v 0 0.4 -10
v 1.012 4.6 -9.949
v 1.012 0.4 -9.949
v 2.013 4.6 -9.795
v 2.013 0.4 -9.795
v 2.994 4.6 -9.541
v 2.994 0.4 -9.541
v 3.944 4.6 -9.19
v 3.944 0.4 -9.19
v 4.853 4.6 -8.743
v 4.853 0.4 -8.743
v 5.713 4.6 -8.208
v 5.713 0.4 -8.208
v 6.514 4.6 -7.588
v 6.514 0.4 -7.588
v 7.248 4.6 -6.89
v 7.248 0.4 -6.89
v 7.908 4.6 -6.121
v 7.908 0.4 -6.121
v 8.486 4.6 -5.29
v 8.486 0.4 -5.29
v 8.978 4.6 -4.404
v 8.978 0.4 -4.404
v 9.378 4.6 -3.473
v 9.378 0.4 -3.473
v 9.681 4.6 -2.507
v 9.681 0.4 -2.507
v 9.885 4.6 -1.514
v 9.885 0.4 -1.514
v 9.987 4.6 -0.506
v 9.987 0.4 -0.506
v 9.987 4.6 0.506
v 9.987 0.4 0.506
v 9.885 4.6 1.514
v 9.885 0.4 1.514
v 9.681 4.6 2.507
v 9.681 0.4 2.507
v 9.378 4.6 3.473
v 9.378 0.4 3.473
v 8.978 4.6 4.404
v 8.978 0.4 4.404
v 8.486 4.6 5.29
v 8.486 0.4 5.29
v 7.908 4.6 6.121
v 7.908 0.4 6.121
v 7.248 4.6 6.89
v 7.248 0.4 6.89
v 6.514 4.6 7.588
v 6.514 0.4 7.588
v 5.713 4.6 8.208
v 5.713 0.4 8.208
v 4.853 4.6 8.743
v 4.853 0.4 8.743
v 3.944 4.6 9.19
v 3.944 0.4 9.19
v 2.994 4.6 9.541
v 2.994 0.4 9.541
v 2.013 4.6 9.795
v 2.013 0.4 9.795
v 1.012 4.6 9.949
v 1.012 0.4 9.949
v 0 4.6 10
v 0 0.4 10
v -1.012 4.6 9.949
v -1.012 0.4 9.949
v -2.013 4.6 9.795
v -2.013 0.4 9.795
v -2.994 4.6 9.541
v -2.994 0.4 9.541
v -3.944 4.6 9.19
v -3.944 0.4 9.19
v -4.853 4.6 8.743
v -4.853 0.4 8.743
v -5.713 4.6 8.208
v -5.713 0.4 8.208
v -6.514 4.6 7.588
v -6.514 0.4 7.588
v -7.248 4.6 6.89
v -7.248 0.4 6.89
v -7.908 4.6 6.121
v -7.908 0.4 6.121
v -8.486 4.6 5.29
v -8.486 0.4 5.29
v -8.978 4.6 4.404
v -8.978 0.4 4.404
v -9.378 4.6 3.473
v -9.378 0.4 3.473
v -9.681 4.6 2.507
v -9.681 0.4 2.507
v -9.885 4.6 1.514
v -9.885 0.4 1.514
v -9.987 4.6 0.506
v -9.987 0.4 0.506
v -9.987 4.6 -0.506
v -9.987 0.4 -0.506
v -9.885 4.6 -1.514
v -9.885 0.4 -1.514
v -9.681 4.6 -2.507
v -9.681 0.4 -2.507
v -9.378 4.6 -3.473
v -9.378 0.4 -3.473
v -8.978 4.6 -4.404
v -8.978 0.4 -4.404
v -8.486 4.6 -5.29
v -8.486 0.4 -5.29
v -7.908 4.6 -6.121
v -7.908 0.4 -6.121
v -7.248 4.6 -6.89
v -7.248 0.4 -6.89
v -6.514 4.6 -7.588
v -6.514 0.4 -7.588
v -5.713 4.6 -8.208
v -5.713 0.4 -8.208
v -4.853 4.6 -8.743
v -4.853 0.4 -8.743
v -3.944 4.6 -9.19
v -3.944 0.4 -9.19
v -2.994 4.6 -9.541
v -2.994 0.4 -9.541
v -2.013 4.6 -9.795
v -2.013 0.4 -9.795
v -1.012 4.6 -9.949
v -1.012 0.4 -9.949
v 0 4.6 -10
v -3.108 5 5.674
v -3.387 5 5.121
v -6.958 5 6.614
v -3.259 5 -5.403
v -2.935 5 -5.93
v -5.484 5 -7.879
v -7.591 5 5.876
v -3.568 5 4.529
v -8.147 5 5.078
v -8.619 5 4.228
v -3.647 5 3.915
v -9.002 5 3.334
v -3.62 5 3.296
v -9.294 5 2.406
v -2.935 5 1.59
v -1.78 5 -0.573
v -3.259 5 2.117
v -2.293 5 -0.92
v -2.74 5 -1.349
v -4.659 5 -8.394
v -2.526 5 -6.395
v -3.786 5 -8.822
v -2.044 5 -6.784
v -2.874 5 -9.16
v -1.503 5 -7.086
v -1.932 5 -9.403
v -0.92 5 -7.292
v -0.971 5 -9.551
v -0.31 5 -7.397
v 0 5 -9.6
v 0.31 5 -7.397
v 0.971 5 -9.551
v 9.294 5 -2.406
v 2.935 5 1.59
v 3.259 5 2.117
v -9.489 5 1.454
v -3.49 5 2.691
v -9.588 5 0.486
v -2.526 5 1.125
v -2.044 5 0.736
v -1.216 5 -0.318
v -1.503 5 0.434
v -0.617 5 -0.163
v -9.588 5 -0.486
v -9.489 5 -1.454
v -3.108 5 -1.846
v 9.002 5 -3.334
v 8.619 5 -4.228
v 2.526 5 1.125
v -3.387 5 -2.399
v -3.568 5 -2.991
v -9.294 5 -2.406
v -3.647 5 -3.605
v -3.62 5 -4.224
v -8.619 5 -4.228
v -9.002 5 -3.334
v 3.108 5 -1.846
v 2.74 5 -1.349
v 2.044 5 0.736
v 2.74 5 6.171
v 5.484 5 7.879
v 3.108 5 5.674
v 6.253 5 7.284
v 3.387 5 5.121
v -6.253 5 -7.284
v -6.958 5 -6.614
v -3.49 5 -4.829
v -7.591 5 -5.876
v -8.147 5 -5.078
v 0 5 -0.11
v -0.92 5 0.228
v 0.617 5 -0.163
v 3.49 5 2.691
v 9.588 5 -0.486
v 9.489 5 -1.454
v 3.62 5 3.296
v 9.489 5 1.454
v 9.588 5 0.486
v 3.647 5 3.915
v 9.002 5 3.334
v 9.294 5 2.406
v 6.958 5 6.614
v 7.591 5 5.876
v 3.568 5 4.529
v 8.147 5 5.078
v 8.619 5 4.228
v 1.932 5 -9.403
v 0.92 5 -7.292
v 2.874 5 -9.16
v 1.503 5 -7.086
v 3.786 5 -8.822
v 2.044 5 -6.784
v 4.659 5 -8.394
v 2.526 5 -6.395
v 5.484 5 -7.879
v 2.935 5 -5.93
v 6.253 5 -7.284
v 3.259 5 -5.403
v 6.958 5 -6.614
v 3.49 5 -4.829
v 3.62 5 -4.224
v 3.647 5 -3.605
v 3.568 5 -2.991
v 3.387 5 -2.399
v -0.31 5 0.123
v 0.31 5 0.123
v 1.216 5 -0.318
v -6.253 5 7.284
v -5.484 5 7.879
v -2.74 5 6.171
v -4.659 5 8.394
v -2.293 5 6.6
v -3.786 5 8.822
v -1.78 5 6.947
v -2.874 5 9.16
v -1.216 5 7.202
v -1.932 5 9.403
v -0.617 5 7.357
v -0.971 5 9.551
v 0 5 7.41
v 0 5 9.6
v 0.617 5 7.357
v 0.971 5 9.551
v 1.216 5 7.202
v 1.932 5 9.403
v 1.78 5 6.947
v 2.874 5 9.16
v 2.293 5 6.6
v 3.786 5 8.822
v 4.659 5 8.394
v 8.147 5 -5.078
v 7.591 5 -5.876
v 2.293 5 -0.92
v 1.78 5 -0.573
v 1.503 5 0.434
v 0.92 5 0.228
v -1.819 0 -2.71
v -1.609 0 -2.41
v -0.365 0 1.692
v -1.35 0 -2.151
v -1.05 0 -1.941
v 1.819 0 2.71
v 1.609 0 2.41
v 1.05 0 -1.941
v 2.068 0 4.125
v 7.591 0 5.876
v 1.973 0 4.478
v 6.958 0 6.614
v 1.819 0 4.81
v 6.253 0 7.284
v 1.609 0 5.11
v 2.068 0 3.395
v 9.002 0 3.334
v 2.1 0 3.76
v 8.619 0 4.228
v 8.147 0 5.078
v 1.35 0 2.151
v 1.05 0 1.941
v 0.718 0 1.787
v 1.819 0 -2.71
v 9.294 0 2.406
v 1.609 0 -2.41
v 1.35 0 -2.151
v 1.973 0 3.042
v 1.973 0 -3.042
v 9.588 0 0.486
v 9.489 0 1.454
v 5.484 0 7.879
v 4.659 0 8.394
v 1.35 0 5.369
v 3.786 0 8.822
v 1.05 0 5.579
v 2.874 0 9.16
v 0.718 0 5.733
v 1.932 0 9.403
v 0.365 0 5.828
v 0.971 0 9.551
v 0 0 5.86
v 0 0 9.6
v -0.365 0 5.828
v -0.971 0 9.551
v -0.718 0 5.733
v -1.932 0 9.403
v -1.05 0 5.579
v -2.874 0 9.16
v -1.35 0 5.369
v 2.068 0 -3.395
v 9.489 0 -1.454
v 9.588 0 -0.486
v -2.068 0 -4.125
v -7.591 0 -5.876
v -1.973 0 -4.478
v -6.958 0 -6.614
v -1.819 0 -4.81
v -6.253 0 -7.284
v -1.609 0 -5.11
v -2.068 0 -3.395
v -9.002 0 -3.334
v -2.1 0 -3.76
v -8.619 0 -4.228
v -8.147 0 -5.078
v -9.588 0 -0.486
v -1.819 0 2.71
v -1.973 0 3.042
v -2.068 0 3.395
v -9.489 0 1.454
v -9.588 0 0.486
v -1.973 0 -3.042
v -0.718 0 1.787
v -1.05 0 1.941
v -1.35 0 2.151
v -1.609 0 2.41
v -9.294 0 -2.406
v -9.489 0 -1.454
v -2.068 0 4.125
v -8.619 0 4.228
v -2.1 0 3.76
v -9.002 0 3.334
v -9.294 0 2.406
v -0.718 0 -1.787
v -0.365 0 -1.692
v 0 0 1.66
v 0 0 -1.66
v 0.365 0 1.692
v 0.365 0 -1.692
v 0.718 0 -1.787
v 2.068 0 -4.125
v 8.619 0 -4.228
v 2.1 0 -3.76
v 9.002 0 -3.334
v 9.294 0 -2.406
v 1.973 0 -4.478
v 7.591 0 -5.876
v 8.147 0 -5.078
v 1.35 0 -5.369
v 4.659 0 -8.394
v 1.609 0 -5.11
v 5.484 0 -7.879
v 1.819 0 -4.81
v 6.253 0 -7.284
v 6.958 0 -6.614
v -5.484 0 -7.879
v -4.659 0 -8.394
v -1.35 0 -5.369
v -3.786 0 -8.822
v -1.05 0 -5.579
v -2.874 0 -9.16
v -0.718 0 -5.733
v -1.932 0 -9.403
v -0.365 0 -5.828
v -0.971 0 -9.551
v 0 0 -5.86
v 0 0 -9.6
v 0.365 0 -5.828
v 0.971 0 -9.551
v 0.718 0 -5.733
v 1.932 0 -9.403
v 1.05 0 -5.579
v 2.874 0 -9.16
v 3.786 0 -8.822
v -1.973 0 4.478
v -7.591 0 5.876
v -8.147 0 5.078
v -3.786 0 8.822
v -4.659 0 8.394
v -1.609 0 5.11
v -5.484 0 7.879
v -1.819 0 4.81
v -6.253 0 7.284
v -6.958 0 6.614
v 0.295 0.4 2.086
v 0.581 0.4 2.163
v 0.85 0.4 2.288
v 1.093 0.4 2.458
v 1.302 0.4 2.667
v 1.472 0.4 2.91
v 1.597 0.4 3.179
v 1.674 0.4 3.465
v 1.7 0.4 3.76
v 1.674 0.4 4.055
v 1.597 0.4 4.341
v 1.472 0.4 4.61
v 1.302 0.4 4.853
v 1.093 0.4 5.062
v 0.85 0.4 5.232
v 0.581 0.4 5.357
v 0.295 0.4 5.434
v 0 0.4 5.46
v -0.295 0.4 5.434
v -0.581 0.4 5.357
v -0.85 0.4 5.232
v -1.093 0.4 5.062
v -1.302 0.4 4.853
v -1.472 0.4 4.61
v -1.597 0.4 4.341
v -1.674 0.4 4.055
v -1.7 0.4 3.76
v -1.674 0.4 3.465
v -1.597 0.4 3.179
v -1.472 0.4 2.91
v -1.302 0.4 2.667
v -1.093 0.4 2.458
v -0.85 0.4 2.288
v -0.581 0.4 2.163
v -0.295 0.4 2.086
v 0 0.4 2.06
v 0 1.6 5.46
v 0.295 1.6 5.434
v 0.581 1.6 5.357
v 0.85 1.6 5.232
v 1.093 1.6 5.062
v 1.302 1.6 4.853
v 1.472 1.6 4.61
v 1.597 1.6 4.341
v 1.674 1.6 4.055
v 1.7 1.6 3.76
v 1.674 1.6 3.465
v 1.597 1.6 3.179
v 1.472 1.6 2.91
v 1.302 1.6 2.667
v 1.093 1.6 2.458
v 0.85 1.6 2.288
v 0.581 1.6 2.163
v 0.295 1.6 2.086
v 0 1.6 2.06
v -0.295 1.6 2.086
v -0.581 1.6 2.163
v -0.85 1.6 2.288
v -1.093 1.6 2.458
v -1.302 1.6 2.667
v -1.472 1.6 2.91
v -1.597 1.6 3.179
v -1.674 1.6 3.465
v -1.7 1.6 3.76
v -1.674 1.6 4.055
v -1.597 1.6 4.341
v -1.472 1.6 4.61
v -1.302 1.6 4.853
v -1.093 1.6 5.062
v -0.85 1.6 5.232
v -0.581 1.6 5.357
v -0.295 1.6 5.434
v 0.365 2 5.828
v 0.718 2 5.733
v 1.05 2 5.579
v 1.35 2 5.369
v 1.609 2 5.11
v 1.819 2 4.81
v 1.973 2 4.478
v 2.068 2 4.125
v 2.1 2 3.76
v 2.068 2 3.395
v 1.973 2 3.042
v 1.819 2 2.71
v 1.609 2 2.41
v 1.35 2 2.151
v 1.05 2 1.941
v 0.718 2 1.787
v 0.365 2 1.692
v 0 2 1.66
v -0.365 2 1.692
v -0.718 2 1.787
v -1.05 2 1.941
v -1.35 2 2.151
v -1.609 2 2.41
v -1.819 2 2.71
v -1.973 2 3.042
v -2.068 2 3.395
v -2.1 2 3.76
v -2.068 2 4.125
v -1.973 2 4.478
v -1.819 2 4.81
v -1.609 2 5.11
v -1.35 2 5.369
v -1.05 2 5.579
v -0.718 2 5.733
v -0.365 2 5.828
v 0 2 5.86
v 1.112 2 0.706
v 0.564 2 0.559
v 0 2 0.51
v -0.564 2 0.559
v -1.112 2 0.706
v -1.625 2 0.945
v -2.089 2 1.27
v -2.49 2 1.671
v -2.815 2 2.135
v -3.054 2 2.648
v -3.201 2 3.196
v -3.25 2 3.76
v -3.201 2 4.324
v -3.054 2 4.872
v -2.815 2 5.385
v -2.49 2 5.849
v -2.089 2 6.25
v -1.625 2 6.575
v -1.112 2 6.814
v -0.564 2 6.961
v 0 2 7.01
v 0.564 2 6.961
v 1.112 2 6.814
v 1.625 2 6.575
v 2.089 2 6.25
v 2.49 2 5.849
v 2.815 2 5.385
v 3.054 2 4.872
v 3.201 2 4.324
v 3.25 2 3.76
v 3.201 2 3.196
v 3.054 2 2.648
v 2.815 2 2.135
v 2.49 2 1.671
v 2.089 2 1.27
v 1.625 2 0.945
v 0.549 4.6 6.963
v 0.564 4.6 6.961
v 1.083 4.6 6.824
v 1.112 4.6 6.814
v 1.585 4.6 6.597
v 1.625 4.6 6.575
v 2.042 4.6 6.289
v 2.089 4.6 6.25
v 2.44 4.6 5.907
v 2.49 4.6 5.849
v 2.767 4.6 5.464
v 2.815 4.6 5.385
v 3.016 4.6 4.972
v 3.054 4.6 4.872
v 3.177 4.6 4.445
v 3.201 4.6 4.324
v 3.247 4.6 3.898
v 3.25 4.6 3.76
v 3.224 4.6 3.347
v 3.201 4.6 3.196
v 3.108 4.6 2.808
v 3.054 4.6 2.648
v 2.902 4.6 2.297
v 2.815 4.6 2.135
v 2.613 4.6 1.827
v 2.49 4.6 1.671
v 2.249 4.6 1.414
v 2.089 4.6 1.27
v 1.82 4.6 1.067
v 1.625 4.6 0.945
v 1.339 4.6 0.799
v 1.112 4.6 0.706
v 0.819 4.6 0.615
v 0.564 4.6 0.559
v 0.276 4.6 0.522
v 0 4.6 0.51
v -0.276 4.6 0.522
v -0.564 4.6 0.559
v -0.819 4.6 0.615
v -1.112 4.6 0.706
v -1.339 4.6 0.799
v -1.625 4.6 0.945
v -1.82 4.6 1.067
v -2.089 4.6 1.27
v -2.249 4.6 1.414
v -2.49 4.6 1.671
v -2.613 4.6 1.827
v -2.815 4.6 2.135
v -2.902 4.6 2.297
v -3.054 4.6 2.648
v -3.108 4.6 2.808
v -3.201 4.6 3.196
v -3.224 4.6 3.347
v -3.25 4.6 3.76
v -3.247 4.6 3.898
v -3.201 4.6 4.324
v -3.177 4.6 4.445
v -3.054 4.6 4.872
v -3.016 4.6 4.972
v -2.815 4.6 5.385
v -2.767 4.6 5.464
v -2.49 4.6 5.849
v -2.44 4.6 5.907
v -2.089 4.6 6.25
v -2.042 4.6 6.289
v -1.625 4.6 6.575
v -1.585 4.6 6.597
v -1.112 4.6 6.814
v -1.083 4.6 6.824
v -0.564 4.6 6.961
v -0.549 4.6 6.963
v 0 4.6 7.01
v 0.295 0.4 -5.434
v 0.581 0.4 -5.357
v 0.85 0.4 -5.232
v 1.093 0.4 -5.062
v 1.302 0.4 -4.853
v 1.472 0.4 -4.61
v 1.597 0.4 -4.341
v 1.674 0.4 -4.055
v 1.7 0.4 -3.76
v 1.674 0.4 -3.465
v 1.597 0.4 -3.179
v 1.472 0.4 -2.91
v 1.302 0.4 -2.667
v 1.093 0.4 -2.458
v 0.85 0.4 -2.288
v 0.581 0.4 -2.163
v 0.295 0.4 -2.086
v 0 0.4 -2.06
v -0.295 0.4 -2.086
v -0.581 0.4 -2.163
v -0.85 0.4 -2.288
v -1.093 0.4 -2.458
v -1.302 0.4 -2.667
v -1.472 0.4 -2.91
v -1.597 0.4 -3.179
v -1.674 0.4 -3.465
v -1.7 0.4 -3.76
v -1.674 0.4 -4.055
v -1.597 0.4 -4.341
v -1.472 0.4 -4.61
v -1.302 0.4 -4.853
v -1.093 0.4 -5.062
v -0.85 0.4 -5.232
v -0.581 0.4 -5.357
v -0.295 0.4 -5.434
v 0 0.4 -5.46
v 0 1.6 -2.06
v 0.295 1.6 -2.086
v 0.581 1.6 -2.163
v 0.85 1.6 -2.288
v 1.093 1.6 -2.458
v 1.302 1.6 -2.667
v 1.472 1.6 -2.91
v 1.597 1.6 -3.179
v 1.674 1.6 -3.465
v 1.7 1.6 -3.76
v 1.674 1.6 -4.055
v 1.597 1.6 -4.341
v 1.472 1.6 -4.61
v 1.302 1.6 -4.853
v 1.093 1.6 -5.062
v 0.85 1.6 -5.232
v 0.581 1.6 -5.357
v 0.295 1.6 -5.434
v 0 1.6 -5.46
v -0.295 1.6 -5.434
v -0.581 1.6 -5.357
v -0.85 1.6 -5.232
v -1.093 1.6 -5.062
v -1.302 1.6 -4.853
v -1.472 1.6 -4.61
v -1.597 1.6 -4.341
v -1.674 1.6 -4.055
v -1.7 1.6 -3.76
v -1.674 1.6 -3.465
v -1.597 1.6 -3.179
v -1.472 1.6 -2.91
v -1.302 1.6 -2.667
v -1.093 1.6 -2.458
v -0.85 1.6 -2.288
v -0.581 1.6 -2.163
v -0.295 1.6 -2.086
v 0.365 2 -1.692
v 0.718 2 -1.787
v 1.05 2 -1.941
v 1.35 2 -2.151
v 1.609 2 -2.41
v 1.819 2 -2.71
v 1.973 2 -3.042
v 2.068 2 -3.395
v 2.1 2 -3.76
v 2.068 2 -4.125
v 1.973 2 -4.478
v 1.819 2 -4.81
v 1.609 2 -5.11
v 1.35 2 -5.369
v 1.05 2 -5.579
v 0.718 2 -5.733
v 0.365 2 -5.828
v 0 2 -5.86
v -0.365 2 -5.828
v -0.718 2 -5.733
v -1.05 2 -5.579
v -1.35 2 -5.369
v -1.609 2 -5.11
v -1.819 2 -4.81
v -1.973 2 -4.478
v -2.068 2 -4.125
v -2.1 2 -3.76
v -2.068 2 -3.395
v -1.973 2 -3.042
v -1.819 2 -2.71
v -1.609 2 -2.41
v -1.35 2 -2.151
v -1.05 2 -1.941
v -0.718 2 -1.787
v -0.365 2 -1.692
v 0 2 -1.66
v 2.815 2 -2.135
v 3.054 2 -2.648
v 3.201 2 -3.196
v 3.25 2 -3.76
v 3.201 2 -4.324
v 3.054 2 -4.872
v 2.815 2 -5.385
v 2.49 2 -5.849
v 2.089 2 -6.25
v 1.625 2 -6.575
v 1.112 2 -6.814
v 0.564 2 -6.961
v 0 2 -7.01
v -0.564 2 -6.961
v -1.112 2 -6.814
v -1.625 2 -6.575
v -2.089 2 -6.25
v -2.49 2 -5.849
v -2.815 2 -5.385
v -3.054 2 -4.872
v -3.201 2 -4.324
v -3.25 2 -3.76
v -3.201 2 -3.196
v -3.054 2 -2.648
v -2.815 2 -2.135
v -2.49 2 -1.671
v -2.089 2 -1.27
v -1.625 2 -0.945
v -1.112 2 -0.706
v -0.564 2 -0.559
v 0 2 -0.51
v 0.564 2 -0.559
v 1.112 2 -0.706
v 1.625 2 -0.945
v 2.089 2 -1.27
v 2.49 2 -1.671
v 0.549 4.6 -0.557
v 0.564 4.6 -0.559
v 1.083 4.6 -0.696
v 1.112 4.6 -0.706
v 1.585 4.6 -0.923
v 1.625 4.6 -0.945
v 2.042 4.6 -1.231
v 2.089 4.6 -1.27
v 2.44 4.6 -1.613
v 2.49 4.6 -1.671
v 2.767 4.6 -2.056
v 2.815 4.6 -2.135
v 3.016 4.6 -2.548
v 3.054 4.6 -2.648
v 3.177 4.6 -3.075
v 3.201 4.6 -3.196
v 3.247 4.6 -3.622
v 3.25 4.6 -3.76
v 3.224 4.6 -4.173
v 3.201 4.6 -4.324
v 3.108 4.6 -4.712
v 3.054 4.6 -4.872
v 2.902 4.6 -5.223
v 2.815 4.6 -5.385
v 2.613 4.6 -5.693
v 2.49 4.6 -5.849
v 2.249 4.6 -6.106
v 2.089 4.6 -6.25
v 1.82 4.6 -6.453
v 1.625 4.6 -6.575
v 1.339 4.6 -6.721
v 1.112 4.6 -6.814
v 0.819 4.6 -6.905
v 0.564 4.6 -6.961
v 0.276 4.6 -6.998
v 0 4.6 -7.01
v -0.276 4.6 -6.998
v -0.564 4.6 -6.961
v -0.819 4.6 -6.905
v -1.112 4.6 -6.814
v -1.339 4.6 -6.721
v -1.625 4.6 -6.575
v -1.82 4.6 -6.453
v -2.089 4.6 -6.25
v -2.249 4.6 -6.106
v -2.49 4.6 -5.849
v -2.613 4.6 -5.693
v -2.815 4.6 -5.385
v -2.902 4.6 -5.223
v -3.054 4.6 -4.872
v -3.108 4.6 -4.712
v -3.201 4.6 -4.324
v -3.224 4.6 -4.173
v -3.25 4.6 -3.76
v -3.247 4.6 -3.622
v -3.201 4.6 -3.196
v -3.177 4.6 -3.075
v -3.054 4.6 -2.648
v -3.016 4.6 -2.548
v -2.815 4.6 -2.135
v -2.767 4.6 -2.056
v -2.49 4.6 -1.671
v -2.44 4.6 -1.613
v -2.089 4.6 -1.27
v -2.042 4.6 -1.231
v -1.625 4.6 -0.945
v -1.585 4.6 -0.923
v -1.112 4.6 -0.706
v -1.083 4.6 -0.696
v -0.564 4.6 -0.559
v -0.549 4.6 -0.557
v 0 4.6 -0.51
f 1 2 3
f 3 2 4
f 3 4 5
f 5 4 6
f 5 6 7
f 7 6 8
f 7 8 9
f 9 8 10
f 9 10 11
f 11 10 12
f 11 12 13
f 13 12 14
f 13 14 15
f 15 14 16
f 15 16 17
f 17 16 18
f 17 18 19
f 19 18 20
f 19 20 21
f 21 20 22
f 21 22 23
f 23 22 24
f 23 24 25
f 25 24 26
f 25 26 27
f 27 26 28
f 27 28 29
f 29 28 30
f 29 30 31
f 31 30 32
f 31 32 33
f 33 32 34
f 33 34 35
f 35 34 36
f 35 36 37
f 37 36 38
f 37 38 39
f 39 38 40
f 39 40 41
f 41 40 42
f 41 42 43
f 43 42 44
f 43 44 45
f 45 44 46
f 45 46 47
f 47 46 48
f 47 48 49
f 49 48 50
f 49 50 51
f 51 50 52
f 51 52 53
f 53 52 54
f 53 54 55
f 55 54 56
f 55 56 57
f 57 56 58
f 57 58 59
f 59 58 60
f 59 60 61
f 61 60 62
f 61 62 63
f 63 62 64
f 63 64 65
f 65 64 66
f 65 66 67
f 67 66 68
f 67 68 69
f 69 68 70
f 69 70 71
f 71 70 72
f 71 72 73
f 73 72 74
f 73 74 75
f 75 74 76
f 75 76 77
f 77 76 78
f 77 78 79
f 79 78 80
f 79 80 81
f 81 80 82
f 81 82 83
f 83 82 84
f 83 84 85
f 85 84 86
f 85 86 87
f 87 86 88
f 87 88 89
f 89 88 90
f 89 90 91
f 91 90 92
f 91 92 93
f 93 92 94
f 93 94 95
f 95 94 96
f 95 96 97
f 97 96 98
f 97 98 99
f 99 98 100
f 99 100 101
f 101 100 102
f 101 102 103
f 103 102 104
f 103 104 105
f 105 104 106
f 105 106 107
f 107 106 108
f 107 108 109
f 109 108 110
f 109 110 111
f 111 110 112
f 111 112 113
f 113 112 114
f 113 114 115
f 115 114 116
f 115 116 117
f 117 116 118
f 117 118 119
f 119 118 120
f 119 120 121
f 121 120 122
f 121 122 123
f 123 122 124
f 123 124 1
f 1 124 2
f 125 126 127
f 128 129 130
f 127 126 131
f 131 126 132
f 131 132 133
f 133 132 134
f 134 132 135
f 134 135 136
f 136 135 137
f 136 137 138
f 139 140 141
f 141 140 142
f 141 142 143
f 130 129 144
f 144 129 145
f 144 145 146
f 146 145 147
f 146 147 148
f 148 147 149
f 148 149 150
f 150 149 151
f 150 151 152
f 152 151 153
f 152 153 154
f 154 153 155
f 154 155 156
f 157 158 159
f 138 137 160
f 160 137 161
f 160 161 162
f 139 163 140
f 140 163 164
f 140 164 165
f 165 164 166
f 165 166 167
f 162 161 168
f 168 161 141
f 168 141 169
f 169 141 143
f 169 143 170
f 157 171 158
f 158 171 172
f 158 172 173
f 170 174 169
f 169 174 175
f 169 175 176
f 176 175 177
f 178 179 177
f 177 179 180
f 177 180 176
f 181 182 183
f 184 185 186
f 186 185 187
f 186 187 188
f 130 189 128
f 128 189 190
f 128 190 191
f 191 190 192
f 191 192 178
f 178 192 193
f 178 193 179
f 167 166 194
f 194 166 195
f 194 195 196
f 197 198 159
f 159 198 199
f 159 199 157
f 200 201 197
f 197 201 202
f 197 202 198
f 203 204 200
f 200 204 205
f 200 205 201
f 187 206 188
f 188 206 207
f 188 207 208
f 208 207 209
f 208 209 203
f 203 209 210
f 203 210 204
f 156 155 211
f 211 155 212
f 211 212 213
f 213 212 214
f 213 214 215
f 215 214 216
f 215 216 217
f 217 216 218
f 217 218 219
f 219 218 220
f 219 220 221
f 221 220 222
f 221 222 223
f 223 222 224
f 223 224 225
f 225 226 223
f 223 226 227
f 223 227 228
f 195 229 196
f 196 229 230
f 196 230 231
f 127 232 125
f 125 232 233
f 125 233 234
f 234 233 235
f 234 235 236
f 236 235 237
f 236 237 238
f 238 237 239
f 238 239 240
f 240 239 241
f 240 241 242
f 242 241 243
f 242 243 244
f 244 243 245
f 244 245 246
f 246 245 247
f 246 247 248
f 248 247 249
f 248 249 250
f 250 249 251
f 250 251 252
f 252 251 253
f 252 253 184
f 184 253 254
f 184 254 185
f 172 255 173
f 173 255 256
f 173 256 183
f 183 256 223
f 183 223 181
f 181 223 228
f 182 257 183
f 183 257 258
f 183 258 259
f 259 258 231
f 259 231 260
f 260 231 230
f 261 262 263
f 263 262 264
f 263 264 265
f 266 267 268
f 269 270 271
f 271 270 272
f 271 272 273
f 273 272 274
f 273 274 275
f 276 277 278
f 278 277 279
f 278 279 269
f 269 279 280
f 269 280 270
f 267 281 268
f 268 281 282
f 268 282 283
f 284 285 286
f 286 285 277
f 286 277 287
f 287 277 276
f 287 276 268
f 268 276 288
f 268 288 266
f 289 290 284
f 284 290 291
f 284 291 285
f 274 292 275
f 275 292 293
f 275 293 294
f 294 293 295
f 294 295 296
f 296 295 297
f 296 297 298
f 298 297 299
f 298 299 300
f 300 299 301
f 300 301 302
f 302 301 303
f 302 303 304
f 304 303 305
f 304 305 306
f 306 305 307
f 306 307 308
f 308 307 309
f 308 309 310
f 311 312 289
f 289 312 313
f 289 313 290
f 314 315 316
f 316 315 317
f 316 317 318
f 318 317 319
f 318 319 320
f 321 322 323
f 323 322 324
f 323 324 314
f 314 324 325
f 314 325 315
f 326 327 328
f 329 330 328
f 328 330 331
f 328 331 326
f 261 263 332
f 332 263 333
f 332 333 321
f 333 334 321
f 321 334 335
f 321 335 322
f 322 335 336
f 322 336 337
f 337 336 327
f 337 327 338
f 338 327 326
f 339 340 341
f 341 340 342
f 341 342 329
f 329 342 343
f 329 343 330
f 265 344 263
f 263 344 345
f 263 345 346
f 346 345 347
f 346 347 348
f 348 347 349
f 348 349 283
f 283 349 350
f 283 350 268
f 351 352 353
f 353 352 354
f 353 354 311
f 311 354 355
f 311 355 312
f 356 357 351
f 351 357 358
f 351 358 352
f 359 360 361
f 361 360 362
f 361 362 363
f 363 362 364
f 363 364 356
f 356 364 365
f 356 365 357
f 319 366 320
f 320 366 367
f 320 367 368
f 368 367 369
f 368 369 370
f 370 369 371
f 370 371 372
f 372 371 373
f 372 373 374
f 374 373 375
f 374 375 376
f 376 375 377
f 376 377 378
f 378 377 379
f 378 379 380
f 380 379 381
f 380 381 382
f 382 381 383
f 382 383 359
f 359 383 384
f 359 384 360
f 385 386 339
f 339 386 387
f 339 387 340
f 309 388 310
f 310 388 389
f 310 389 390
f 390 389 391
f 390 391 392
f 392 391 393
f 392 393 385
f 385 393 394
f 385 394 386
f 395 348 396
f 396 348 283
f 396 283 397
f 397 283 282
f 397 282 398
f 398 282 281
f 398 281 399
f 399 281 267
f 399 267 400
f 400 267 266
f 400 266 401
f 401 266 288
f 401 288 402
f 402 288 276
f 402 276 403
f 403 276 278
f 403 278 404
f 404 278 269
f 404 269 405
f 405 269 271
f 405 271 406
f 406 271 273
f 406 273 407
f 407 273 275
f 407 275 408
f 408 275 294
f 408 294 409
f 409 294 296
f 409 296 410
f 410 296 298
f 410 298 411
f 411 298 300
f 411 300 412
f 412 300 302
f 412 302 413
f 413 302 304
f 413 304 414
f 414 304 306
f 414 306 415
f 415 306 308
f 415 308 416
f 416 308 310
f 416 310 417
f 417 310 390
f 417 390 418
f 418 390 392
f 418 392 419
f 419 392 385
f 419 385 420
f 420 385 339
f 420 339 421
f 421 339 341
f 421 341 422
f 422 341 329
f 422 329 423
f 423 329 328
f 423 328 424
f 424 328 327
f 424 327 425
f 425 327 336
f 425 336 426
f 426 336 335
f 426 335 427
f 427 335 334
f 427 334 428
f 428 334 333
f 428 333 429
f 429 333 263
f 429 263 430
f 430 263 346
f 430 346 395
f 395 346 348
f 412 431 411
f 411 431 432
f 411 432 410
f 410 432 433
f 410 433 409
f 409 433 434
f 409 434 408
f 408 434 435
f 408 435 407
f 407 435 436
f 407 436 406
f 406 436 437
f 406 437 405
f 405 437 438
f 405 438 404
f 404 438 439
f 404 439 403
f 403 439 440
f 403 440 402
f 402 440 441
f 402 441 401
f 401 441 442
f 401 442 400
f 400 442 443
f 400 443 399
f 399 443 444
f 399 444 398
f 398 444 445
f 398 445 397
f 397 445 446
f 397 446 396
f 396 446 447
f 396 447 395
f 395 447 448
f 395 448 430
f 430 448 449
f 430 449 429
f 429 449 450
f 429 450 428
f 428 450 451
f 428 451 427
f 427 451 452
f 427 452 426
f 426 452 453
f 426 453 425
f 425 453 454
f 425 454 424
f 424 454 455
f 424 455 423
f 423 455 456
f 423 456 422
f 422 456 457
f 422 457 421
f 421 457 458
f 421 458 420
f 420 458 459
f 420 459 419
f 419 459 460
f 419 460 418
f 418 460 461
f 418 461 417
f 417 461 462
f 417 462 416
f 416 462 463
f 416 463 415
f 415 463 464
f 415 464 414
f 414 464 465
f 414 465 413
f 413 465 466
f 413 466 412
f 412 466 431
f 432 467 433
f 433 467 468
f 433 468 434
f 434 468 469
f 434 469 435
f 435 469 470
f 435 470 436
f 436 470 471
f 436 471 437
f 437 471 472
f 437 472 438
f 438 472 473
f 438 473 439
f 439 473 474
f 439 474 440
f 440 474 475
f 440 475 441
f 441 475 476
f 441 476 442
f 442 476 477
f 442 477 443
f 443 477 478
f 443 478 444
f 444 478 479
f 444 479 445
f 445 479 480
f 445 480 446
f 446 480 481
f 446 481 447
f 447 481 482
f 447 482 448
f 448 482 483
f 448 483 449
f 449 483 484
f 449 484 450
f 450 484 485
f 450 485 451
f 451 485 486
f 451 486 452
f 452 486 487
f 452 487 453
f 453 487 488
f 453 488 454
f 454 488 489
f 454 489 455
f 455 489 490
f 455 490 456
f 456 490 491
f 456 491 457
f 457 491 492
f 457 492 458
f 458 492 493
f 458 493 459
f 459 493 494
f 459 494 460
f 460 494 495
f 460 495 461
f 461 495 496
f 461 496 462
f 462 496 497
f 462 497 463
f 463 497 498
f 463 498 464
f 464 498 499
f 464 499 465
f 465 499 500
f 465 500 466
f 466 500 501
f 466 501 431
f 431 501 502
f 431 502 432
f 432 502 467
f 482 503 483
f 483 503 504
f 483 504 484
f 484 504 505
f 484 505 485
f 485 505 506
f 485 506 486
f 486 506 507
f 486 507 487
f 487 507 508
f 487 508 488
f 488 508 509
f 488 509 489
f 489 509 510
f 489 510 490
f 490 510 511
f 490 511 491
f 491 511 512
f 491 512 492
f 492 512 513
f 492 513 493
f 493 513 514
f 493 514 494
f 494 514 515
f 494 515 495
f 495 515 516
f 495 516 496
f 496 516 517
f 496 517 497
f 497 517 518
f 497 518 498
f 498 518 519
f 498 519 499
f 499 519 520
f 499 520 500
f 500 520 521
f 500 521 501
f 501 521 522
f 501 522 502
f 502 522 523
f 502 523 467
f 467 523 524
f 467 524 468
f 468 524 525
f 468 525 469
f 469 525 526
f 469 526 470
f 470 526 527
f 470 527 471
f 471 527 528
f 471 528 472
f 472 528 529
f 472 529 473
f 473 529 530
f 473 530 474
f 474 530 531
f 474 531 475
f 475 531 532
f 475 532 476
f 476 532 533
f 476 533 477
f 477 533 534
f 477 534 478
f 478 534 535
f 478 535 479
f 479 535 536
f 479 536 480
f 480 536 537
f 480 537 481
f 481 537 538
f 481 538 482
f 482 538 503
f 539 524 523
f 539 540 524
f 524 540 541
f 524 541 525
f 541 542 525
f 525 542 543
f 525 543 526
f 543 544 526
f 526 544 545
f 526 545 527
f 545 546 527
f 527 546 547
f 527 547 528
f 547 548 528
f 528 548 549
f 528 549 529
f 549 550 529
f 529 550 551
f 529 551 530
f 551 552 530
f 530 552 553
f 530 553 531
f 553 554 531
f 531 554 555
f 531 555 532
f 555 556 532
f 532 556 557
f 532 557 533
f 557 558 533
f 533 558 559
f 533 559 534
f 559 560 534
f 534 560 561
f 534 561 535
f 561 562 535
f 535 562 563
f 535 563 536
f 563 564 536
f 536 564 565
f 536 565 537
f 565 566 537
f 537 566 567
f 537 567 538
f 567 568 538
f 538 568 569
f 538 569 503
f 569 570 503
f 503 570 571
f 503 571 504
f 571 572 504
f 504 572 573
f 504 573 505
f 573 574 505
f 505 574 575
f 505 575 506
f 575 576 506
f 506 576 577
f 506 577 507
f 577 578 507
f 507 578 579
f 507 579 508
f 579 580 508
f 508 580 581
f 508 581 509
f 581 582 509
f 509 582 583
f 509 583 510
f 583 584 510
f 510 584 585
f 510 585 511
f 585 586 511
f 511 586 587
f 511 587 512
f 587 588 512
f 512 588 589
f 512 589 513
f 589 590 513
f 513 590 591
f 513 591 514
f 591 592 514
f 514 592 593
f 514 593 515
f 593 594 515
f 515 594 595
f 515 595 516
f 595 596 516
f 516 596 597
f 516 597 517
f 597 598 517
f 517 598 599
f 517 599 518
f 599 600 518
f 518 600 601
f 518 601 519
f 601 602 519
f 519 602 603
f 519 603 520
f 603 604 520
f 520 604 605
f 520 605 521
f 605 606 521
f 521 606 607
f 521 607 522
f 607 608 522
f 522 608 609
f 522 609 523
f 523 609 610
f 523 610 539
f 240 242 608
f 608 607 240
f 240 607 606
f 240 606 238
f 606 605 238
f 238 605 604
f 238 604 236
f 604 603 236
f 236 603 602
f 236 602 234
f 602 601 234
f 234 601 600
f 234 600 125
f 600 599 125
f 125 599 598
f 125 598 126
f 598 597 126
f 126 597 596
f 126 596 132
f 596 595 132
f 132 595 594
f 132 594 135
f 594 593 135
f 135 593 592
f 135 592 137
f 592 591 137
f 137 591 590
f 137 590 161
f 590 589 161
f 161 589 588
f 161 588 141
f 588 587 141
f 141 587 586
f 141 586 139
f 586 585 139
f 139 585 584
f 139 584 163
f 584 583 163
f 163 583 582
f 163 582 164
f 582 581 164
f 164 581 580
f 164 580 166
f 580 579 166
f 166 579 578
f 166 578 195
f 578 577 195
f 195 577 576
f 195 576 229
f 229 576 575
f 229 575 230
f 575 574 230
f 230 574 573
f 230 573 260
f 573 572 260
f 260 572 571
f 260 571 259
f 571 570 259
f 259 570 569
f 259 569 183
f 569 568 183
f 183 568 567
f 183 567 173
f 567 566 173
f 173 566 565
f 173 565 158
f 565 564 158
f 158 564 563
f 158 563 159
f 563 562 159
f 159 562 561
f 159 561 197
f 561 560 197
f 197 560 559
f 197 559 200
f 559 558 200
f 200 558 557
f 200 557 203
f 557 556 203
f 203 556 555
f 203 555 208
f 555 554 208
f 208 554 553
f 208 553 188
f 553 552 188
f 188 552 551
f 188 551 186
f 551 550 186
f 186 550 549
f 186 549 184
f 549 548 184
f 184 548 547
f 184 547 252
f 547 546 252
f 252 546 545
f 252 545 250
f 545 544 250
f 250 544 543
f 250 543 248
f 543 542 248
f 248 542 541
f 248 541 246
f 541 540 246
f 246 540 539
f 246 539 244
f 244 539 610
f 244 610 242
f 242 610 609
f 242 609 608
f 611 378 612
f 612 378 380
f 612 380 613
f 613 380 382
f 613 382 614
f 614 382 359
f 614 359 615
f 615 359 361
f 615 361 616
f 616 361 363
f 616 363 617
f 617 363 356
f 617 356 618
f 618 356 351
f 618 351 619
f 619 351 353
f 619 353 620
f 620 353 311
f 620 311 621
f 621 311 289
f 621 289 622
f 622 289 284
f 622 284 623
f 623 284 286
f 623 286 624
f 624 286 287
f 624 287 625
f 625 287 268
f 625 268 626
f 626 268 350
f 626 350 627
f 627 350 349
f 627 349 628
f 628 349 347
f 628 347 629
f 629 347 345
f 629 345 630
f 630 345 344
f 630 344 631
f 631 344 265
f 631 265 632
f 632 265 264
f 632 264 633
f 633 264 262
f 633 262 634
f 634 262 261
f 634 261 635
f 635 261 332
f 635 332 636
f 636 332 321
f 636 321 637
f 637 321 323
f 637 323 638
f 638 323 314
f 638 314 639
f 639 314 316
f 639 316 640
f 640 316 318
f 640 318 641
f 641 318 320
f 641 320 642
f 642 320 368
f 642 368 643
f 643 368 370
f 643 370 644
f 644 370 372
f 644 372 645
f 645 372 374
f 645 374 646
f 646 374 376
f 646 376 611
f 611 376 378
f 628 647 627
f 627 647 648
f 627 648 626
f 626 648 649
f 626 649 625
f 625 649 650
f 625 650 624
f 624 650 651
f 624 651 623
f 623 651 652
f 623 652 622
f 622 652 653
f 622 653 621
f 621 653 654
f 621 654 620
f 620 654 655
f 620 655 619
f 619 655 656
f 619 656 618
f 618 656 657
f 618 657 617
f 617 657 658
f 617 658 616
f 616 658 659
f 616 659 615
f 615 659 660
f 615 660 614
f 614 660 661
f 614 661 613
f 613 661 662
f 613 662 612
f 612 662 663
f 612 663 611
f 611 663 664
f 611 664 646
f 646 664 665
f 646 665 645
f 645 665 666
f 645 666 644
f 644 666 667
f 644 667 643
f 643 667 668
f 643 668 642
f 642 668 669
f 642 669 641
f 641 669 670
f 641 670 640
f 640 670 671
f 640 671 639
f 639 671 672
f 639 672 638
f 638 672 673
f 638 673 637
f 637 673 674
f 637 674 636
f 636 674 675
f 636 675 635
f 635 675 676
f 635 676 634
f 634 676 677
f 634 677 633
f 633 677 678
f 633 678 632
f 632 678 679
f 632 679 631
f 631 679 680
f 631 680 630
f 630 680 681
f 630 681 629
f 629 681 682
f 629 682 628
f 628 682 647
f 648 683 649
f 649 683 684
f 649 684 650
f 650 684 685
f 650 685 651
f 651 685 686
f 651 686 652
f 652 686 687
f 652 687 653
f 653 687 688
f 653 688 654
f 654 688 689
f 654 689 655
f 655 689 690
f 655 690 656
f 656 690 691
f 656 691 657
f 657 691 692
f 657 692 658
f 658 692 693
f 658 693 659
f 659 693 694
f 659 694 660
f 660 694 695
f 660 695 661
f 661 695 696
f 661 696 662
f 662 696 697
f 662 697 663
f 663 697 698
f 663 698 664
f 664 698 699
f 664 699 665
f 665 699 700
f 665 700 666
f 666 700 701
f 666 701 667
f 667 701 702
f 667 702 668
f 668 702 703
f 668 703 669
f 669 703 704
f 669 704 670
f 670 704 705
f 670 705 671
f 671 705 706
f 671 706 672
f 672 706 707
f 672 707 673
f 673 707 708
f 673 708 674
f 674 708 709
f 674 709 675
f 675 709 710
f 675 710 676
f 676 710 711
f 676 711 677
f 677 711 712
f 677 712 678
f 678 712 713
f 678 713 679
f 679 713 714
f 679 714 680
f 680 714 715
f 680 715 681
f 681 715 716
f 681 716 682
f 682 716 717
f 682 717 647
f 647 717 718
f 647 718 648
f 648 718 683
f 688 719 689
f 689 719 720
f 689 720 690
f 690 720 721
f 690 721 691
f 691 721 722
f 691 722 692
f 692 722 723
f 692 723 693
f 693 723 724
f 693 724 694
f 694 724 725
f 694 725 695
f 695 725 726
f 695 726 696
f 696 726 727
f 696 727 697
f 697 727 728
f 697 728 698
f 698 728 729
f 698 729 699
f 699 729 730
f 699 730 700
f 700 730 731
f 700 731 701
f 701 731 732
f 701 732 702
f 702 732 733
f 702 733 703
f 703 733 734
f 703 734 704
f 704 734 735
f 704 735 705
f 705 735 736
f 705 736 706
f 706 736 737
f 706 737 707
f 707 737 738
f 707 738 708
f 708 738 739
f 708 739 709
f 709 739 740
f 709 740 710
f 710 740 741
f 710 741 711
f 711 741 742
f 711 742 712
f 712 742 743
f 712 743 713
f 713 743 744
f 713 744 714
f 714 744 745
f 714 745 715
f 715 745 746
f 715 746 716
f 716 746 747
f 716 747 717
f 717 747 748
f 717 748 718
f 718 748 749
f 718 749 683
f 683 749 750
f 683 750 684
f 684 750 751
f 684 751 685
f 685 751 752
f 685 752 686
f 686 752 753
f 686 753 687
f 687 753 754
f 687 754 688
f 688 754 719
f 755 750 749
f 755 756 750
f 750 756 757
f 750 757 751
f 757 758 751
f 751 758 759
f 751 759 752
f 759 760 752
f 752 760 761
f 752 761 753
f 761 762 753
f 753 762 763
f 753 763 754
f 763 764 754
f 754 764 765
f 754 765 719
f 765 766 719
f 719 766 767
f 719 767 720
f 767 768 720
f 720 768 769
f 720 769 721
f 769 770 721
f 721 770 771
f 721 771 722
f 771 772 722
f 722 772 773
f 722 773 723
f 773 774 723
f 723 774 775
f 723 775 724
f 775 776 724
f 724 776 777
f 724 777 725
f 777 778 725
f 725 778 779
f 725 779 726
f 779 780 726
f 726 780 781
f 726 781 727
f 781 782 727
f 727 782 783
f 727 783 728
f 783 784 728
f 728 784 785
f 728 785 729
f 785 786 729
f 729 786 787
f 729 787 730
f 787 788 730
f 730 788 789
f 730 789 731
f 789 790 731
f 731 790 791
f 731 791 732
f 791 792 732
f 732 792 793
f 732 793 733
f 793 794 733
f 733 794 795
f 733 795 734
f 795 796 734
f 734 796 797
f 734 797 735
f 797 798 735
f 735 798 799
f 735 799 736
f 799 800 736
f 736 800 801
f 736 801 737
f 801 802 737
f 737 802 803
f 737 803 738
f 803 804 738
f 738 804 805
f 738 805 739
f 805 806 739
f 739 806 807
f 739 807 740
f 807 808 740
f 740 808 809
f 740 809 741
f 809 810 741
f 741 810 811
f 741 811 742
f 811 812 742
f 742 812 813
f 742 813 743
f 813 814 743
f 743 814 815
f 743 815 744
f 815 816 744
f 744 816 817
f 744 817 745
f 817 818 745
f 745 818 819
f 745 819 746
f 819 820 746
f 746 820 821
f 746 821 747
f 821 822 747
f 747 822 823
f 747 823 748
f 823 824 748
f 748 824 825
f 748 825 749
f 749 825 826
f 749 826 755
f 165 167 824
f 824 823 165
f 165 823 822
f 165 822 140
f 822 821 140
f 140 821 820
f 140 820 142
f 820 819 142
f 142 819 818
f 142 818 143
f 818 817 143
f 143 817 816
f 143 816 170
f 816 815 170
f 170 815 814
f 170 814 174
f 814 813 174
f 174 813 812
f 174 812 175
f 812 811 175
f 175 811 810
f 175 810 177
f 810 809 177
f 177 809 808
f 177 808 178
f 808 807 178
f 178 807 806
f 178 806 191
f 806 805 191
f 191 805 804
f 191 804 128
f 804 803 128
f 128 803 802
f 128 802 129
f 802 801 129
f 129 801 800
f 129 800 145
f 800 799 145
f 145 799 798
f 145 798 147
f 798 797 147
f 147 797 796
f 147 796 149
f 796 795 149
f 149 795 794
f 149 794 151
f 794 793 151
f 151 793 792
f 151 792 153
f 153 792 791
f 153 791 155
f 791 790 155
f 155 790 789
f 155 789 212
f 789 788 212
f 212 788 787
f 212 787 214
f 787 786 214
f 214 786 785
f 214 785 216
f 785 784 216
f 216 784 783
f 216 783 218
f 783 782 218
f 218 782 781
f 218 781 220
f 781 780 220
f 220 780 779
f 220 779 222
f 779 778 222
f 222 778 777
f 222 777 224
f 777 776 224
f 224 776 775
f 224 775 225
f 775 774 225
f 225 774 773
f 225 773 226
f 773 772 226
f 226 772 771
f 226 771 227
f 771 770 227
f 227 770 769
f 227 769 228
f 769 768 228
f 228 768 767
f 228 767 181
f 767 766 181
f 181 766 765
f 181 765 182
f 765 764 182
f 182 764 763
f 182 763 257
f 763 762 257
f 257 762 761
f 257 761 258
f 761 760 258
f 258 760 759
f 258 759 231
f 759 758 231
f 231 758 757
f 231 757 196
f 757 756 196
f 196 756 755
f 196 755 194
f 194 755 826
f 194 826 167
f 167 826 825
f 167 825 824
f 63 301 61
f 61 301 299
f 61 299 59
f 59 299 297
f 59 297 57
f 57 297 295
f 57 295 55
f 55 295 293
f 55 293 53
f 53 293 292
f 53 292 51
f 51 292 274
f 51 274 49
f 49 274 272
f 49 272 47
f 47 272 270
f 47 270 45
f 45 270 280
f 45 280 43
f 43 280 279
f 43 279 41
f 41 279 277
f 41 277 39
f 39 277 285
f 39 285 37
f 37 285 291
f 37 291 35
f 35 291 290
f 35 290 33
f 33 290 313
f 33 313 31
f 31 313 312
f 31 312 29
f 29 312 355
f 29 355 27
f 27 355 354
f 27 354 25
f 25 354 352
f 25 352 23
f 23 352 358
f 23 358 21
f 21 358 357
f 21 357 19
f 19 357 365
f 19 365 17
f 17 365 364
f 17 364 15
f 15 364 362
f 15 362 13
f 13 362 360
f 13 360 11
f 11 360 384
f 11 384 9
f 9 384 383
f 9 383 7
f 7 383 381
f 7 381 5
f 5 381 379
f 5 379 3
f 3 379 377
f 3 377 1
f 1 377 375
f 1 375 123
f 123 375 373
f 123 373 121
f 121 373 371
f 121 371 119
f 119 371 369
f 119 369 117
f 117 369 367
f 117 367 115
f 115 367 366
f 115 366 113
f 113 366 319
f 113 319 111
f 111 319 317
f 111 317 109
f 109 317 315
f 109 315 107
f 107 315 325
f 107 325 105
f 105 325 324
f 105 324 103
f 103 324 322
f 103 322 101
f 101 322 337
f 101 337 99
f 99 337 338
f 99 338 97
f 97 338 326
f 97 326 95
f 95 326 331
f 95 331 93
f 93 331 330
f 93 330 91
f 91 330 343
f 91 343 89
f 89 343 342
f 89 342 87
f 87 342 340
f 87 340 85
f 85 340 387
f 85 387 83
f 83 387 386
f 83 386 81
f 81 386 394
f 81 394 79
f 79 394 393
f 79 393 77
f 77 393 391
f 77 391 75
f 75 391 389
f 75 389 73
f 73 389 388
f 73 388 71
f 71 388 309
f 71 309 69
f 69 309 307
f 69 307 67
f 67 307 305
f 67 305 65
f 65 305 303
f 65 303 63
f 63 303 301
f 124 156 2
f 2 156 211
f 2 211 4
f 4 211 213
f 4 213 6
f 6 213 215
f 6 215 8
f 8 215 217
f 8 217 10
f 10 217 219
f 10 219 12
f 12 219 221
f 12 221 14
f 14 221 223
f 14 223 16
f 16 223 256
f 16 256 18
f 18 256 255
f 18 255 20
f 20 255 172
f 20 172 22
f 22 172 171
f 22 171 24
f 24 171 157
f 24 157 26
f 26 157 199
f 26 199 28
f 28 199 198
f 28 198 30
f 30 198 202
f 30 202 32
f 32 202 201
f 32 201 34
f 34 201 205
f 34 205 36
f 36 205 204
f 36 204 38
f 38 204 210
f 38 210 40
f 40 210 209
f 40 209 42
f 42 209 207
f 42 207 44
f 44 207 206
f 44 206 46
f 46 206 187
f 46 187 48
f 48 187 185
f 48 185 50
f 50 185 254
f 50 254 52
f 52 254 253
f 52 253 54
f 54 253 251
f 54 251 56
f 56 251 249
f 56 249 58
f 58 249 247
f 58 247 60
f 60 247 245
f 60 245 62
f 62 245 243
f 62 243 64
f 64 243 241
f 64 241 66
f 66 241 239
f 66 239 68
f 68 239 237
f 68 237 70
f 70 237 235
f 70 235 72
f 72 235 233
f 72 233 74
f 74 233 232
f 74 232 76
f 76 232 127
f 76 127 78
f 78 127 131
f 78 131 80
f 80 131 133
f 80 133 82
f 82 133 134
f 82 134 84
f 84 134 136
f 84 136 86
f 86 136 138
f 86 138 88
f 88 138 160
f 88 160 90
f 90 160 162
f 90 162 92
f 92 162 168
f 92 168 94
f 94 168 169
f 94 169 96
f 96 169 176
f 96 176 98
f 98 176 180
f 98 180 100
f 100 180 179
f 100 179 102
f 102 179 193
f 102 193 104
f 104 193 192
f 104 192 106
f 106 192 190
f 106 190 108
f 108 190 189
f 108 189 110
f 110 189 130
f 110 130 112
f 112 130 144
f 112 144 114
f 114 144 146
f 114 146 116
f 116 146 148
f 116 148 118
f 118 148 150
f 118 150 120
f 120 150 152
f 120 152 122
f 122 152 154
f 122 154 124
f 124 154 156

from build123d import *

# Parameters (mm, degrees)
SKETCH1_R                     = 10
BOSS_EXTRUDE1_DEPTH           = 5
CBORE_FOR_M3_SHCS1_AT_2_COUNT = 2
CBORE_FOR_M3_SHCS1_AT_2_PITCH = 7.52
CHAMFER1_SIZE                 = 0.4


with BuildPart() as part:
    # Sketch1 → Boss-Extrude1 (new body)
    with BuildSketch(Plane(origin=(0, 0, 0), x_dir=(1, 0, 0), z_dir=(0, 1, 0))):
        with Locations(Location((0, 0, 0), (0, 0, 270))):
            Circle(SKETCH1_R)
    extrude(amount=BOSS_EXTRUDE1_DEPTH)

    # Sketch3 → CBORE for M3 SHCS1 (revolve, cut)
    with BuildSketch(Plane(origin=(0, 5, -3.76), x_dir=(0, 0, 1), z_dir=(1, 0, 0))):
        Polygon((0, 0), (0, 5), (2.1, 5), (1.7, 4.6), (1.7, 3.4), (2.1, 3), (3.25, 3), (3.25, 0.4), (3.65, 0), align=None)
    cbore_for_m3_shcs1 = revolve(axis=Axis((0, 11.35, -3.76), (0, -1, 0)), mode=Mode.SUBTRACT)

    # CBORE for M3 SHCS1 at 2: CBORE for M3 SHCS1 ×2
    with Locations(*[(0, 0, i * CBORE_FOR_M3_SHCS1_AT_2_PITCH) for i in range(1, CBORE_FOR_M3_SHCS1_AT_2_COUNT)]):
        add(cbore_for_m3_shcs1, mode=Mode.SUBTRACT)

    # Chamfer1
    chamfer1_edges = [part.edges().sort_by_distance(p)[0] for p in [
        (0, 0, -10),
        (0, 5, -10),
    ]]
    chamfer(chamfer1_edges, length=CHAMFER1_SIZE)


solid = part.part
